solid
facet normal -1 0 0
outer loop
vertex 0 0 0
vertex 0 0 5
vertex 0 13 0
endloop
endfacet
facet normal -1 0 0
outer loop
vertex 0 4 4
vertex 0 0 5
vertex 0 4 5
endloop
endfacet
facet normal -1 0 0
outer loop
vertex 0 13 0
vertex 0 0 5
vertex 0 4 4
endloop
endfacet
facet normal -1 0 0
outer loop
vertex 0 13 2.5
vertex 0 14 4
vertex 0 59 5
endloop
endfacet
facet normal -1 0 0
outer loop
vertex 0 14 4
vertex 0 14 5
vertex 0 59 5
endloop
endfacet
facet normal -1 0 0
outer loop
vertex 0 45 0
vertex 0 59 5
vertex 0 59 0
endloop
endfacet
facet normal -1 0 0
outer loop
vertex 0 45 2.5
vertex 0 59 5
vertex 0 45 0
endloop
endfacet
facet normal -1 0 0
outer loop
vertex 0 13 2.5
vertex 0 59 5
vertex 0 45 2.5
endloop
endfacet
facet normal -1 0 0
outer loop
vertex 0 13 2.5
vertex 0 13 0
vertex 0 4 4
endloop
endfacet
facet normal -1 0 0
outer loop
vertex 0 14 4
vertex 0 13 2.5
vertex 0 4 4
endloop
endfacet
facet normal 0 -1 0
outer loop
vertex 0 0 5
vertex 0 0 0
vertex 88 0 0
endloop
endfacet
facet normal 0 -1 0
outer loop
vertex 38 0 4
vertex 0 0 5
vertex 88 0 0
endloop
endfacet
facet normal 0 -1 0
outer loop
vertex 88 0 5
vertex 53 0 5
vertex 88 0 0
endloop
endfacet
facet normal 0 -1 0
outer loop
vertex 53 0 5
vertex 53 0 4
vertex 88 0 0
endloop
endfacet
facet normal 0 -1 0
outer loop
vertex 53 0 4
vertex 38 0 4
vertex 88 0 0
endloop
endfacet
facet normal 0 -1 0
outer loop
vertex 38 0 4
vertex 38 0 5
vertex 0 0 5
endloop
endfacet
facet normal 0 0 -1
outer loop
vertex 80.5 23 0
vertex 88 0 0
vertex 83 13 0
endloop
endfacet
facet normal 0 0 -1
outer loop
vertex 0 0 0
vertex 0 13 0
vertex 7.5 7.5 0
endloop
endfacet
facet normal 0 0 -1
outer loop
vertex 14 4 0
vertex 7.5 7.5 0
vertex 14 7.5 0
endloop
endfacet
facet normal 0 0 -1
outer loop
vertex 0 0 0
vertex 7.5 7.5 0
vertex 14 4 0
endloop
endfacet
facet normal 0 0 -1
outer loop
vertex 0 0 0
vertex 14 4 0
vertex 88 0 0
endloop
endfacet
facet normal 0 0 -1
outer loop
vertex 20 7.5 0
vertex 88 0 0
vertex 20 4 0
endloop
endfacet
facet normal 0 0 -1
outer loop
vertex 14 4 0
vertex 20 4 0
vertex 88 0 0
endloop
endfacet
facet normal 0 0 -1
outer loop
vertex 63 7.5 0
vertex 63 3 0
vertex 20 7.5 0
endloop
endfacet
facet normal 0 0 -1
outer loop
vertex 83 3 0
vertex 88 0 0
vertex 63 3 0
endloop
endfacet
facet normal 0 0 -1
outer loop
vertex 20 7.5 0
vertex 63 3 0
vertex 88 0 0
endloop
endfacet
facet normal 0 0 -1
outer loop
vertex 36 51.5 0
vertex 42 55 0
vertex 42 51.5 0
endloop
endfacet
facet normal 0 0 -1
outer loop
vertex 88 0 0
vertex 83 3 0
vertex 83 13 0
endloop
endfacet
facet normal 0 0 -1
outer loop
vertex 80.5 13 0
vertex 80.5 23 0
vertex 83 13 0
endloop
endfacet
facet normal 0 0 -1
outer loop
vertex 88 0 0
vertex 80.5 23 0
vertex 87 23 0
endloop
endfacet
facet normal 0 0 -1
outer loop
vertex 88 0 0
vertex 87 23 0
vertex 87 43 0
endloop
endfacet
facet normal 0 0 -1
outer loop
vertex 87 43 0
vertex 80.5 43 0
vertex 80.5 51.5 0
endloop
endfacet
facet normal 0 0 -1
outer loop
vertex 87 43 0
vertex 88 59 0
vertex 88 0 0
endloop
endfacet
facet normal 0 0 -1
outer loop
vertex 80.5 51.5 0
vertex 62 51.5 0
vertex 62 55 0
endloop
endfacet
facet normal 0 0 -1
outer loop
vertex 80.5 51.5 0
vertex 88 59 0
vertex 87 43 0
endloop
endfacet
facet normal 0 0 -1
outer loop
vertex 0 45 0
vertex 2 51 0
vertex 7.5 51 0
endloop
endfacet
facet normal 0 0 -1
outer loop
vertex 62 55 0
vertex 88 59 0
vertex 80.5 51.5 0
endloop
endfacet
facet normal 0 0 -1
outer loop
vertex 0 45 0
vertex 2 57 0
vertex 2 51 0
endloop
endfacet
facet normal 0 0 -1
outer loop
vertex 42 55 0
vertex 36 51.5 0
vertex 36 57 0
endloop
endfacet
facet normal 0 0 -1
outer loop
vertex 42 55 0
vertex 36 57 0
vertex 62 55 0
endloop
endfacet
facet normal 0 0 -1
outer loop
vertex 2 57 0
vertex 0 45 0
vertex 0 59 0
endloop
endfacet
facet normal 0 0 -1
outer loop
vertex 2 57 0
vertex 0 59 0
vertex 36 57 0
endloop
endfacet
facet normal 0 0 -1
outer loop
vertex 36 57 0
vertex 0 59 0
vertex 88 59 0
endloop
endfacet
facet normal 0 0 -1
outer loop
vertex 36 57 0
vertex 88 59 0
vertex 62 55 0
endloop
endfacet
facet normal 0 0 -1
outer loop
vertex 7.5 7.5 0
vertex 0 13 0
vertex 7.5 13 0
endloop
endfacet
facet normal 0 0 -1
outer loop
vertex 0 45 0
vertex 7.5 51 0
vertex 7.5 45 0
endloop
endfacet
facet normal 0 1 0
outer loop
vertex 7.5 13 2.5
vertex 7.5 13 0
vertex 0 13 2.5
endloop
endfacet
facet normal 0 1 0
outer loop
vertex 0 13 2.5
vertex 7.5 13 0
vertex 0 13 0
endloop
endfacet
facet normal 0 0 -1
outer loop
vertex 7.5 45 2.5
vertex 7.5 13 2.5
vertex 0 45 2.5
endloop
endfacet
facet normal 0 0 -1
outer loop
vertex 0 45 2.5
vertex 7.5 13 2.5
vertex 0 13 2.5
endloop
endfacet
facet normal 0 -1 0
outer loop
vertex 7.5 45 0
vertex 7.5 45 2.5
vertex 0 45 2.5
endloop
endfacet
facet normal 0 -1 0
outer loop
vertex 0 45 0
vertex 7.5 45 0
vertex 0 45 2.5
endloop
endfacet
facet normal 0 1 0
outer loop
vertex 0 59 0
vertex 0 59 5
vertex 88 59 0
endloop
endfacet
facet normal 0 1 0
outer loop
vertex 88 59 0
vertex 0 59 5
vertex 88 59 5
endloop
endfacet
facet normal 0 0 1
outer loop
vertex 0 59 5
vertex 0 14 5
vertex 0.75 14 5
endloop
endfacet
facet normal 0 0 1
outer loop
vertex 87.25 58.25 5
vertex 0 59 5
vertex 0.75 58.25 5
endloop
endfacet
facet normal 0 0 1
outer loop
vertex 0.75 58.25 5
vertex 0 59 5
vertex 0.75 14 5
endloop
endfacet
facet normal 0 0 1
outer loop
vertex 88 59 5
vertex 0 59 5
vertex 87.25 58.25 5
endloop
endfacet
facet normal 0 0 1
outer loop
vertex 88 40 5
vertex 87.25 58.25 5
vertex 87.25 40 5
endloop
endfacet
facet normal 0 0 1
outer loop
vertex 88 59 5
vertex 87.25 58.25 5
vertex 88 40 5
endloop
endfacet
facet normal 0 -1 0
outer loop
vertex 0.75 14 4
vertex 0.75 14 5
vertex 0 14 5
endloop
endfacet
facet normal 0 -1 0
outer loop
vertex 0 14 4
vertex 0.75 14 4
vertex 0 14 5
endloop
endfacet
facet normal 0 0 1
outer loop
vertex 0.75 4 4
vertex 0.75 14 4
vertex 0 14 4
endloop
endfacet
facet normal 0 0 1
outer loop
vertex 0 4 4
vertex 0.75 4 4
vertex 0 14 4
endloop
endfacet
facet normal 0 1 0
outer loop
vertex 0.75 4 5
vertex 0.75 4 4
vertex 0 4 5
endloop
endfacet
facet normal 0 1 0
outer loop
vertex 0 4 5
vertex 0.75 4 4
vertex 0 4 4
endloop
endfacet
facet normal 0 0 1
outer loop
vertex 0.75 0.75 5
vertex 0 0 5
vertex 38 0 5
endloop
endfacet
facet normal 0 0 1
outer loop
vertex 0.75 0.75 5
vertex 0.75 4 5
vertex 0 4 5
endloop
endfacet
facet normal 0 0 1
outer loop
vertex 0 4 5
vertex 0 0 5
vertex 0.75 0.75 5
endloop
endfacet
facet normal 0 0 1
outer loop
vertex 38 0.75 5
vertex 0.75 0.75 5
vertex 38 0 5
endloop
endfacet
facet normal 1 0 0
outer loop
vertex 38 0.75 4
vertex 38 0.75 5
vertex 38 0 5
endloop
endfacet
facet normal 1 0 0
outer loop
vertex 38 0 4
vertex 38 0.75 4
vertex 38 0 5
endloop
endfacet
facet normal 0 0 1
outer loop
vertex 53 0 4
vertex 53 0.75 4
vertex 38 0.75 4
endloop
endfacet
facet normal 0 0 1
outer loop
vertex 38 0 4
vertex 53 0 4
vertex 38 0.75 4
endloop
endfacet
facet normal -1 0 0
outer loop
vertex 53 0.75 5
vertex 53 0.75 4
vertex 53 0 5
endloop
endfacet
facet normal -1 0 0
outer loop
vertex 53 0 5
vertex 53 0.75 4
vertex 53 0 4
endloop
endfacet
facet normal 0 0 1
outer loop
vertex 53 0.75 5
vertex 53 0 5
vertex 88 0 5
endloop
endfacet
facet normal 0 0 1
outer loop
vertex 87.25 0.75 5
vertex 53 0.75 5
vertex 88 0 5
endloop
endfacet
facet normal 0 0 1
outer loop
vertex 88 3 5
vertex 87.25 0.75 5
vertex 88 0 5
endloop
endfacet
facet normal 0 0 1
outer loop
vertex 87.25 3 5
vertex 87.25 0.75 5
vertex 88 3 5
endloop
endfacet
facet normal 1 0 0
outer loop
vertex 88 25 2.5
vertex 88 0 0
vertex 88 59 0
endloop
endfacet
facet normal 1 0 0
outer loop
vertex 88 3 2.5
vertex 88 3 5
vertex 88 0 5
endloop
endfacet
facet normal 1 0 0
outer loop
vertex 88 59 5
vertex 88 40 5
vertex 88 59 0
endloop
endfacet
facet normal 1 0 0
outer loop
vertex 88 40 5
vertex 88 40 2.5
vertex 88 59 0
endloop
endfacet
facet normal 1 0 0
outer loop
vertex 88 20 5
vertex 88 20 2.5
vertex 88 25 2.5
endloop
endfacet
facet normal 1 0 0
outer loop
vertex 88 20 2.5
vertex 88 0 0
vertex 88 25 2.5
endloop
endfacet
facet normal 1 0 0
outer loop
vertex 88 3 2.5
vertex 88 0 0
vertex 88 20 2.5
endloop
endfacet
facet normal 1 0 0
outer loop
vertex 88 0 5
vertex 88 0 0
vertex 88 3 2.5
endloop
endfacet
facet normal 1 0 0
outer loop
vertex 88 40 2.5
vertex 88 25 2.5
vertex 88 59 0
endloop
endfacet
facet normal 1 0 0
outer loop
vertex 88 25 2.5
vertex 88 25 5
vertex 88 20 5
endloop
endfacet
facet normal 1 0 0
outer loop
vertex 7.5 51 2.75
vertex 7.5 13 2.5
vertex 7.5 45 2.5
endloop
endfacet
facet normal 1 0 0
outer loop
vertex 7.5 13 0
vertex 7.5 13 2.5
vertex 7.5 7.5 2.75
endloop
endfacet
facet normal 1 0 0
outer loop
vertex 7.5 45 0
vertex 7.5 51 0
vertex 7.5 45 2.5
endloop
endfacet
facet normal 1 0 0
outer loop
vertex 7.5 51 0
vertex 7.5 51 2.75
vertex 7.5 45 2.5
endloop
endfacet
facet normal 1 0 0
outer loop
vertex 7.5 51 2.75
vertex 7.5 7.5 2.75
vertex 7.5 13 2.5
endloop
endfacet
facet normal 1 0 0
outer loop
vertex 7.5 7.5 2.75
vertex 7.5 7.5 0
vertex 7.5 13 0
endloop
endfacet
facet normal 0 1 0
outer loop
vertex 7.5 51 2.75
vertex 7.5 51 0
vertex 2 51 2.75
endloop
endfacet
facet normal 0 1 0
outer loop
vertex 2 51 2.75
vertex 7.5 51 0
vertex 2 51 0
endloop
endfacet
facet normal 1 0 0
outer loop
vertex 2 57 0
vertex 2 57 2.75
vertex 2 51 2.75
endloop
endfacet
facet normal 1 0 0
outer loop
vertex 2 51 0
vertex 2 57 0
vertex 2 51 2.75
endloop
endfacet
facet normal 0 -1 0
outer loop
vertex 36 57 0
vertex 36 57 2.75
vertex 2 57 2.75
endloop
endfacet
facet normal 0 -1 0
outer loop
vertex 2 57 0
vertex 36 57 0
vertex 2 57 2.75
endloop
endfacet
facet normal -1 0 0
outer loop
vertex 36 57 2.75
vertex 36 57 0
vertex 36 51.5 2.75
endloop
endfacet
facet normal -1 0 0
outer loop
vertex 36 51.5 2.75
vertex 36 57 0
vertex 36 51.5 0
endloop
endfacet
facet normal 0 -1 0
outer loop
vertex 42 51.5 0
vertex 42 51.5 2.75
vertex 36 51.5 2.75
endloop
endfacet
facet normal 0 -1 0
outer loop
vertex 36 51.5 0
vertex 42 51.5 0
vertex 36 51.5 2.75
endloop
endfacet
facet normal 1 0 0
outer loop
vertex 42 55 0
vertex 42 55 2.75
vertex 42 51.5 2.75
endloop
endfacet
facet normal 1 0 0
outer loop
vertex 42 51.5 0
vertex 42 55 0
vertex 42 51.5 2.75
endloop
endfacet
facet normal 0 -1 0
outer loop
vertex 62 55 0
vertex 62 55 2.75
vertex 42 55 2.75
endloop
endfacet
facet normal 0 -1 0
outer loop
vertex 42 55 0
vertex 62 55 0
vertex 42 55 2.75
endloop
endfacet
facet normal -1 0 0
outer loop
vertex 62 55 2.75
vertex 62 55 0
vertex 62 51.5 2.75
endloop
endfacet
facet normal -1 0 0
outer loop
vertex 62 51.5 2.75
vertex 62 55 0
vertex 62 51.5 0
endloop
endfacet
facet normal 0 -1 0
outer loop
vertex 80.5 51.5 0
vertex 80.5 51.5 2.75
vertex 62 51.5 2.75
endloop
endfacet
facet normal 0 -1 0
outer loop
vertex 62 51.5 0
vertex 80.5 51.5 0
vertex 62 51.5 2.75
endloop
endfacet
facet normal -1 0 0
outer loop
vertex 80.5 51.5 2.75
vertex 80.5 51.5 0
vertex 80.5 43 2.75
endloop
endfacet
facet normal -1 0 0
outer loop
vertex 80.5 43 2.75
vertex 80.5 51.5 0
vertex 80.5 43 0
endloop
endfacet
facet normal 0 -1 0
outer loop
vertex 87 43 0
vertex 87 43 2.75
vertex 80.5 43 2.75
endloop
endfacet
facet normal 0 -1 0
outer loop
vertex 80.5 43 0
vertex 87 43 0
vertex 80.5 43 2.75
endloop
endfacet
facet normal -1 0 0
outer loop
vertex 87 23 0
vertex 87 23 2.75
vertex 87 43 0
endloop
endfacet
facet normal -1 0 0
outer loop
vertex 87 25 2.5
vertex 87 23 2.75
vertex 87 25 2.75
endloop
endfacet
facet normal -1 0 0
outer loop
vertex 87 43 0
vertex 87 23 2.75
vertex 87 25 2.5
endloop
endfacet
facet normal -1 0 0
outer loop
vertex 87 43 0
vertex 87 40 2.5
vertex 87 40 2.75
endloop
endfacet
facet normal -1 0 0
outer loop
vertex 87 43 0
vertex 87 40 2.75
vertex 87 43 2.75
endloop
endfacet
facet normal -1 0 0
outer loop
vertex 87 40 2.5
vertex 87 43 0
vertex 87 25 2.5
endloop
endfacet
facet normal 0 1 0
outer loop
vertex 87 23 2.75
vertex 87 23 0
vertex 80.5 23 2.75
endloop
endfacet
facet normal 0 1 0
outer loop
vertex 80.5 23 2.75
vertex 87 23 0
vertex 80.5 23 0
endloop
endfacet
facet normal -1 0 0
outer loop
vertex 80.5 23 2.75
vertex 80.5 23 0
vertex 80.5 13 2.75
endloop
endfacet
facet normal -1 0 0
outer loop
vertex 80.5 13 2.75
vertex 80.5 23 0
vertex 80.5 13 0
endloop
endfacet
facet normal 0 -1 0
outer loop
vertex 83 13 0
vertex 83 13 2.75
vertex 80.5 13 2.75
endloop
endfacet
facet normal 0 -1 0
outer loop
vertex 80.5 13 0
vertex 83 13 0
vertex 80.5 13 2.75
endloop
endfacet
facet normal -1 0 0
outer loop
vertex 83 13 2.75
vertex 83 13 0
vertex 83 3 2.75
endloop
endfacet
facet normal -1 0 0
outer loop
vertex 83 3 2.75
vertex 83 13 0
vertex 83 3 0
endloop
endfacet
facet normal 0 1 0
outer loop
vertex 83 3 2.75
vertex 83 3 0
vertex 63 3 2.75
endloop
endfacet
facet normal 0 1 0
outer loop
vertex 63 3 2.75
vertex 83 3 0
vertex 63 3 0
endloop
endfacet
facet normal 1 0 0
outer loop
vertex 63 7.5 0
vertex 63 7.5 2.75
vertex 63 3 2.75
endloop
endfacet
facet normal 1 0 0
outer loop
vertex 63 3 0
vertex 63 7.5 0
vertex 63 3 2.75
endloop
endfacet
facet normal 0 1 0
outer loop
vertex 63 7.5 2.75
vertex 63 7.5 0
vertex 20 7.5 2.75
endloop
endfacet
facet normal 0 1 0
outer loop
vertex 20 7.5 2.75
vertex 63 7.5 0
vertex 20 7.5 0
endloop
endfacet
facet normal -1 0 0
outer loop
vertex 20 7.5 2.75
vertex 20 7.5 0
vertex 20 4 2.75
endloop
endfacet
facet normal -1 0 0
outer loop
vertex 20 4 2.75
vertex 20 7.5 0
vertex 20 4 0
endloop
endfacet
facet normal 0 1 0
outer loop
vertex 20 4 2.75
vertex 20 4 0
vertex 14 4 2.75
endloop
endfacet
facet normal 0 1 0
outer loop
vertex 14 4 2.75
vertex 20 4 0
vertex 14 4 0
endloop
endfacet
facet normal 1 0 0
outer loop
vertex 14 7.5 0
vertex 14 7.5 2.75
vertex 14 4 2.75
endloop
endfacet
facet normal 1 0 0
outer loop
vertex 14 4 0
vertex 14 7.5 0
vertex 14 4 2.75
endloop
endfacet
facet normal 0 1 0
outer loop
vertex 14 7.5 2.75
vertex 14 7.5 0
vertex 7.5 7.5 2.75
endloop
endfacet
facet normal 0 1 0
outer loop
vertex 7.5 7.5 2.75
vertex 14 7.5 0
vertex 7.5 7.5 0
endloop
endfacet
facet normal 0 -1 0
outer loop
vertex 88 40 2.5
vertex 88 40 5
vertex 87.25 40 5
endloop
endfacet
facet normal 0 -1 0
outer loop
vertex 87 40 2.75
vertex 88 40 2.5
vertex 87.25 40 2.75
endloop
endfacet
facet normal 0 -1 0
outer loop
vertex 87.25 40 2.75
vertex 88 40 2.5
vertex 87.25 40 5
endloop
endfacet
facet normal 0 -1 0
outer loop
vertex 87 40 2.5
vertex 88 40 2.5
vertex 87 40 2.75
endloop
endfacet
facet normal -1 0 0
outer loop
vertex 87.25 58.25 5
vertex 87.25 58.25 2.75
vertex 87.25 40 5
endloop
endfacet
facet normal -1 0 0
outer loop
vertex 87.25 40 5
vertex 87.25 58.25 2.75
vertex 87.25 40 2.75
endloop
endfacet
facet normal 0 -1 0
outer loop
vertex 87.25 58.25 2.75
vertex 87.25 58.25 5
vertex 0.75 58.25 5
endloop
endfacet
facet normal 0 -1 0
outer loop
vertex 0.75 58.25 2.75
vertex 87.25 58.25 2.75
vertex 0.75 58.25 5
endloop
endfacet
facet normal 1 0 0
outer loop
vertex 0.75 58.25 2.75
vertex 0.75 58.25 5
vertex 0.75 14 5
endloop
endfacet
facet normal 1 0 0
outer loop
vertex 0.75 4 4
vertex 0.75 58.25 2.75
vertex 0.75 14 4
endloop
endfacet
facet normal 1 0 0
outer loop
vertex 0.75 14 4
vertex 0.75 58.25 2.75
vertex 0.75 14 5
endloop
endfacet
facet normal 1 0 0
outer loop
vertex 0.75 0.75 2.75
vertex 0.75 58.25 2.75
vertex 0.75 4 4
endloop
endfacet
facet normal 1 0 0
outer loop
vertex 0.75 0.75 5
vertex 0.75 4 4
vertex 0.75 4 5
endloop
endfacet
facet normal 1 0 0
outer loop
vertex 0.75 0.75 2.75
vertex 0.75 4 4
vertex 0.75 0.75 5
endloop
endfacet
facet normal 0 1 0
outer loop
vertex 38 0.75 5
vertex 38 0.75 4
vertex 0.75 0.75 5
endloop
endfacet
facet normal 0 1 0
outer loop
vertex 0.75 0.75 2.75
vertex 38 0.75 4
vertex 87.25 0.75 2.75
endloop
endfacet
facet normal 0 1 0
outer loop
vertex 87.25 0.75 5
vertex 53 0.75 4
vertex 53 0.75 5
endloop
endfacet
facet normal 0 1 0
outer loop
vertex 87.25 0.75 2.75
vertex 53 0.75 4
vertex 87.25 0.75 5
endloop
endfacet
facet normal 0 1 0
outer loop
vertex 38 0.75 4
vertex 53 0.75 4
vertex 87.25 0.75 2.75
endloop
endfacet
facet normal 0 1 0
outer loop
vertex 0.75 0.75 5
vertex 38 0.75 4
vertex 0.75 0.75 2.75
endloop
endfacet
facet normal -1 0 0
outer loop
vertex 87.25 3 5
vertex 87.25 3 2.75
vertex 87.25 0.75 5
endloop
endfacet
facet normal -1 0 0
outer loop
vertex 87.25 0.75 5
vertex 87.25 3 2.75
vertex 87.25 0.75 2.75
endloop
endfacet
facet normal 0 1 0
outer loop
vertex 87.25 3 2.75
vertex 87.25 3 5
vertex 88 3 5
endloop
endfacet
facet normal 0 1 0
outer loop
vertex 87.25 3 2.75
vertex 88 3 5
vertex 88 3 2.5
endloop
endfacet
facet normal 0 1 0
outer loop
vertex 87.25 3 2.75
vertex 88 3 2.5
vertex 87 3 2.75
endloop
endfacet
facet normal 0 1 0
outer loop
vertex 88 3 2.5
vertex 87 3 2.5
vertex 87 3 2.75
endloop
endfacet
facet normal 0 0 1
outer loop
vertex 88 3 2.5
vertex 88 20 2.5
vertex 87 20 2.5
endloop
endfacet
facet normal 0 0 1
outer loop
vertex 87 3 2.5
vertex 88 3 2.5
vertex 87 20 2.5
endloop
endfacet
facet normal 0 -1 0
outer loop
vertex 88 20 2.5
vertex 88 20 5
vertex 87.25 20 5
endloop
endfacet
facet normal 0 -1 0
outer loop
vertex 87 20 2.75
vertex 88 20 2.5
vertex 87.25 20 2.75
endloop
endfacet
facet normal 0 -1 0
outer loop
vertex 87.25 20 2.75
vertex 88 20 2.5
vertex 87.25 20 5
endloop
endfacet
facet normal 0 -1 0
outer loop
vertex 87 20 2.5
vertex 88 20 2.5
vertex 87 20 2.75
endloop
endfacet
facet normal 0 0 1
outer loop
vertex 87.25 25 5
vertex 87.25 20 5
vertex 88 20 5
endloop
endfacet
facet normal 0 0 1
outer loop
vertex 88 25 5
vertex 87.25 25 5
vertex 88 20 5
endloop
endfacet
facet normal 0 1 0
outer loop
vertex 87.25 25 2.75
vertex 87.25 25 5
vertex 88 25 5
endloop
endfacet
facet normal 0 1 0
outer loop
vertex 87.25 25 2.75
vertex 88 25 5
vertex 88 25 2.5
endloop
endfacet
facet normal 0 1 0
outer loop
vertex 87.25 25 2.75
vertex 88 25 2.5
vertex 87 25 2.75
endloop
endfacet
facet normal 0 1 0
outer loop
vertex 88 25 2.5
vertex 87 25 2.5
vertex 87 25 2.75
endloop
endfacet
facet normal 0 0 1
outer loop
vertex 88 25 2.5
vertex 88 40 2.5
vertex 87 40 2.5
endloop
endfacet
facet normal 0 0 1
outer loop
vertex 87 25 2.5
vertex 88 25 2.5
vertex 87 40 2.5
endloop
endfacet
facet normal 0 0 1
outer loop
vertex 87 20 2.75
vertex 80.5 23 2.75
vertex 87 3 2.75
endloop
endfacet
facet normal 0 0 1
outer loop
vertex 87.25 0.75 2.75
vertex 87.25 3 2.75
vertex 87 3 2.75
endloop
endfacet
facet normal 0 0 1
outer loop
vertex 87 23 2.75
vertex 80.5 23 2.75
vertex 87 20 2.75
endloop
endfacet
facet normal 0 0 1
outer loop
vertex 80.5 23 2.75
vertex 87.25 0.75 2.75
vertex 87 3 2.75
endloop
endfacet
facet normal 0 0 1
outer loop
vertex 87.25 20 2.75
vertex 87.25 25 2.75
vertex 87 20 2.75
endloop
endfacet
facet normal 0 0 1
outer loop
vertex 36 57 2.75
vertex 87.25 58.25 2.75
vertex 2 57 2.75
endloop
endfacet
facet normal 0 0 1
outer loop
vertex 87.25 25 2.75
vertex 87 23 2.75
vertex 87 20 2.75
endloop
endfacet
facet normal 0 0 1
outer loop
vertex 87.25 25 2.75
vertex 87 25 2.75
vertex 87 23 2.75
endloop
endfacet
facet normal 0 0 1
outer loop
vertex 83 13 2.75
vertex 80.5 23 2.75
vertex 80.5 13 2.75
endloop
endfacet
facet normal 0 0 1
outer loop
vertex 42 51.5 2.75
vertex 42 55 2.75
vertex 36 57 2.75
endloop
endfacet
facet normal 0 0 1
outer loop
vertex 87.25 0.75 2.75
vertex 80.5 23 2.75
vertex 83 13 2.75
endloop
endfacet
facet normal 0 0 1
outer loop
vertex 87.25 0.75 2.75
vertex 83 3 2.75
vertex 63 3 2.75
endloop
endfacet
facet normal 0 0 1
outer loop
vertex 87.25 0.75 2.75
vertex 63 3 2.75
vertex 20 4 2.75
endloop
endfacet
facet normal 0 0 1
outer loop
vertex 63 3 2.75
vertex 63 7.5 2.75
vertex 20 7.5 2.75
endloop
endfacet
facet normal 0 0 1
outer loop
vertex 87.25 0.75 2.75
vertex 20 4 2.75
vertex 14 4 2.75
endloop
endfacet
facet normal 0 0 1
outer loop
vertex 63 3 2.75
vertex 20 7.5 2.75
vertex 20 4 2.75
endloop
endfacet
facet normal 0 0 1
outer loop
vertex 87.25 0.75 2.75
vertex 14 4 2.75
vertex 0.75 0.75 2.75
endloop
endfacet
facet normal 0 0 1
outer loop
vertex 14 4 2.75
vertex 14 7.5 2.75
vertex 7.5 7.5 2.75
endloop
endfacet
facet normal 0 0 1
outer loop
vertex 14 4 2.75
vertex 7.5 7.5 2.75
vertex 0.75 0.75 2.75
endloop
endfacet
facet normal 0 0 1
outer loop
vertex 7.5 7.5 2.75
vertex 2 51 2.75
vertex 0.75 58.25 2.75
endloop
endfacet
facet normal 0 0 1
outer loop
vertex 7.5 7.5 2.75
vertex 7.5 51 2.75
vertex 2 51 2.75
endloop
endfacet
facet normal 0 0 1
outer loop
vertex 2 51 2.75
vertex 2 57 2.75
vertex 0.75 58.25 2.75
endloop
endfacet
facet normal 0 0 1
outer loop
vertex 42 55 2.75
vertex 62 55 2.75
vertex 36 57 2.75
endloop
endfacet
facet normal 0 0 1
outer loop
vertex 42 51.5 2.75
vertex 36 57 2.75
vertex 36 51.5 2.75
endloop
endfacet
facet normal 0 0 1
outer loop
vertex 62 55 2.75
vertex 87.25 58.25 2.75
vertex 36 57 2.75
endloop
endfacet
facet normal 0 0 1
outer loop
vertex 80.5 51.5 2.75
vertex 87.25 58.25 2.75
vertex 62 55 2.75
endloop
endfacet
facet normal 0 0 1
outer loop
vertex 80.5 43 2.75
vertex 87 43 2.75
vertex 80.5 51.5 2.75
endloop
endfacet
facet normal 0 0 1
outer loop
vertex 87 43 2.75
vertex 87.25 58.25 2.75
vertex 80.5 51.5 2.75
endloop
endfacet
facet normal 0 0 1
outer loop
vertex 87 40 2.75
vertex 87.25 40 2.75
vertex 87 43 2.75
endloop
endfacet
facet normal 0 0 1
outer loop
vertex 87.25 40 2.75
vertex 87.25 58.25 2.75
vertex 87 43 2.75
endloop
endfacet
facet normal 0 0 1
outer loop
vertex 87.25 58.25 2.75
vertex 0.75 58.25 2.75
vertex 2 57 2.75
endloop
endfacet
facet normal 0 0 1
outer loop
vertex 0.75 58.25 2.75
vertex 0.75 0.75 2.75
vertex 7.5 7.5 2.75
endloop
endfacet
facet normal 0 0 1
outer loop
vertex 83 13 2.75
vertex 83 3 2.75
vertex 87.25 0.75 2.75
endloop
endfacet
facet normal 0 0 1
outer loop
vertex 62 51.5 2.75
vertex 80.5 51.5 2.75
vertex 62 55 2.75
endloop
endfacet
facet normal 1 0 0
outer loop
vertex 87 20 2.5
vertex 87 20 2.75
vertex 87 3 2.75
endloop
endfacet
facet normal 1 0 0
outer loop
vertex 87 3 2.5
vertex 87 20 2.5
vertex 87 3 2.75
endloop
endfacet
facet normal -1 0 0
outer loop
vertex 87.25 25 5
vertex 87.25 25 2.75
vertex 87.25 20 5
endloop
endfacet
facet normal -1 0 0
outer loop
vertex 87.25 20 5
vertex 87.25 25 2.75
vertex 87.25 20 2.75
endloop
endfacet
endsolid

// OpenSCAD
difference ()
{
	union()
	{
		translate ([44,29.5,2.5]) difference()
		{
			cube ([88,59,5], center=true);

			union()
			{
				cube ([73,44,5], center=true);
				translate ([0,0,1.5]) cube ([86.5,57.5,2.5], center=true);
			}
		}
	}

	union()
	{
		translate ([0,13,0]) cube ([10,32,2.5]); // SD Card
		translate ([87,3,2.5]) cube ([3,17,2.5]); // Ethernet Port
		translate ([87,25,2.5]) cube ([3,15,2.5]); // USB Ports
		translate ([0,4,4]) cube ([1,10,1]); // Micro USB Port
		translate ([38,0,4]) cube ([15,1,1]); // HDMI Port
		translate ([2,51,0]) cube ([34,6,3]); // Pin Array (Near SD Slot)
		translate ([14,4,0]) cube ([6,3.5,3]); // Chip
		translate ([63,3,0]) cube ([20,10,3]); 
		translate ([77,23,0]) cube ([10,20,3]);
		translate ([42,45,0]) cube ([20,10,3]);
	}
}
